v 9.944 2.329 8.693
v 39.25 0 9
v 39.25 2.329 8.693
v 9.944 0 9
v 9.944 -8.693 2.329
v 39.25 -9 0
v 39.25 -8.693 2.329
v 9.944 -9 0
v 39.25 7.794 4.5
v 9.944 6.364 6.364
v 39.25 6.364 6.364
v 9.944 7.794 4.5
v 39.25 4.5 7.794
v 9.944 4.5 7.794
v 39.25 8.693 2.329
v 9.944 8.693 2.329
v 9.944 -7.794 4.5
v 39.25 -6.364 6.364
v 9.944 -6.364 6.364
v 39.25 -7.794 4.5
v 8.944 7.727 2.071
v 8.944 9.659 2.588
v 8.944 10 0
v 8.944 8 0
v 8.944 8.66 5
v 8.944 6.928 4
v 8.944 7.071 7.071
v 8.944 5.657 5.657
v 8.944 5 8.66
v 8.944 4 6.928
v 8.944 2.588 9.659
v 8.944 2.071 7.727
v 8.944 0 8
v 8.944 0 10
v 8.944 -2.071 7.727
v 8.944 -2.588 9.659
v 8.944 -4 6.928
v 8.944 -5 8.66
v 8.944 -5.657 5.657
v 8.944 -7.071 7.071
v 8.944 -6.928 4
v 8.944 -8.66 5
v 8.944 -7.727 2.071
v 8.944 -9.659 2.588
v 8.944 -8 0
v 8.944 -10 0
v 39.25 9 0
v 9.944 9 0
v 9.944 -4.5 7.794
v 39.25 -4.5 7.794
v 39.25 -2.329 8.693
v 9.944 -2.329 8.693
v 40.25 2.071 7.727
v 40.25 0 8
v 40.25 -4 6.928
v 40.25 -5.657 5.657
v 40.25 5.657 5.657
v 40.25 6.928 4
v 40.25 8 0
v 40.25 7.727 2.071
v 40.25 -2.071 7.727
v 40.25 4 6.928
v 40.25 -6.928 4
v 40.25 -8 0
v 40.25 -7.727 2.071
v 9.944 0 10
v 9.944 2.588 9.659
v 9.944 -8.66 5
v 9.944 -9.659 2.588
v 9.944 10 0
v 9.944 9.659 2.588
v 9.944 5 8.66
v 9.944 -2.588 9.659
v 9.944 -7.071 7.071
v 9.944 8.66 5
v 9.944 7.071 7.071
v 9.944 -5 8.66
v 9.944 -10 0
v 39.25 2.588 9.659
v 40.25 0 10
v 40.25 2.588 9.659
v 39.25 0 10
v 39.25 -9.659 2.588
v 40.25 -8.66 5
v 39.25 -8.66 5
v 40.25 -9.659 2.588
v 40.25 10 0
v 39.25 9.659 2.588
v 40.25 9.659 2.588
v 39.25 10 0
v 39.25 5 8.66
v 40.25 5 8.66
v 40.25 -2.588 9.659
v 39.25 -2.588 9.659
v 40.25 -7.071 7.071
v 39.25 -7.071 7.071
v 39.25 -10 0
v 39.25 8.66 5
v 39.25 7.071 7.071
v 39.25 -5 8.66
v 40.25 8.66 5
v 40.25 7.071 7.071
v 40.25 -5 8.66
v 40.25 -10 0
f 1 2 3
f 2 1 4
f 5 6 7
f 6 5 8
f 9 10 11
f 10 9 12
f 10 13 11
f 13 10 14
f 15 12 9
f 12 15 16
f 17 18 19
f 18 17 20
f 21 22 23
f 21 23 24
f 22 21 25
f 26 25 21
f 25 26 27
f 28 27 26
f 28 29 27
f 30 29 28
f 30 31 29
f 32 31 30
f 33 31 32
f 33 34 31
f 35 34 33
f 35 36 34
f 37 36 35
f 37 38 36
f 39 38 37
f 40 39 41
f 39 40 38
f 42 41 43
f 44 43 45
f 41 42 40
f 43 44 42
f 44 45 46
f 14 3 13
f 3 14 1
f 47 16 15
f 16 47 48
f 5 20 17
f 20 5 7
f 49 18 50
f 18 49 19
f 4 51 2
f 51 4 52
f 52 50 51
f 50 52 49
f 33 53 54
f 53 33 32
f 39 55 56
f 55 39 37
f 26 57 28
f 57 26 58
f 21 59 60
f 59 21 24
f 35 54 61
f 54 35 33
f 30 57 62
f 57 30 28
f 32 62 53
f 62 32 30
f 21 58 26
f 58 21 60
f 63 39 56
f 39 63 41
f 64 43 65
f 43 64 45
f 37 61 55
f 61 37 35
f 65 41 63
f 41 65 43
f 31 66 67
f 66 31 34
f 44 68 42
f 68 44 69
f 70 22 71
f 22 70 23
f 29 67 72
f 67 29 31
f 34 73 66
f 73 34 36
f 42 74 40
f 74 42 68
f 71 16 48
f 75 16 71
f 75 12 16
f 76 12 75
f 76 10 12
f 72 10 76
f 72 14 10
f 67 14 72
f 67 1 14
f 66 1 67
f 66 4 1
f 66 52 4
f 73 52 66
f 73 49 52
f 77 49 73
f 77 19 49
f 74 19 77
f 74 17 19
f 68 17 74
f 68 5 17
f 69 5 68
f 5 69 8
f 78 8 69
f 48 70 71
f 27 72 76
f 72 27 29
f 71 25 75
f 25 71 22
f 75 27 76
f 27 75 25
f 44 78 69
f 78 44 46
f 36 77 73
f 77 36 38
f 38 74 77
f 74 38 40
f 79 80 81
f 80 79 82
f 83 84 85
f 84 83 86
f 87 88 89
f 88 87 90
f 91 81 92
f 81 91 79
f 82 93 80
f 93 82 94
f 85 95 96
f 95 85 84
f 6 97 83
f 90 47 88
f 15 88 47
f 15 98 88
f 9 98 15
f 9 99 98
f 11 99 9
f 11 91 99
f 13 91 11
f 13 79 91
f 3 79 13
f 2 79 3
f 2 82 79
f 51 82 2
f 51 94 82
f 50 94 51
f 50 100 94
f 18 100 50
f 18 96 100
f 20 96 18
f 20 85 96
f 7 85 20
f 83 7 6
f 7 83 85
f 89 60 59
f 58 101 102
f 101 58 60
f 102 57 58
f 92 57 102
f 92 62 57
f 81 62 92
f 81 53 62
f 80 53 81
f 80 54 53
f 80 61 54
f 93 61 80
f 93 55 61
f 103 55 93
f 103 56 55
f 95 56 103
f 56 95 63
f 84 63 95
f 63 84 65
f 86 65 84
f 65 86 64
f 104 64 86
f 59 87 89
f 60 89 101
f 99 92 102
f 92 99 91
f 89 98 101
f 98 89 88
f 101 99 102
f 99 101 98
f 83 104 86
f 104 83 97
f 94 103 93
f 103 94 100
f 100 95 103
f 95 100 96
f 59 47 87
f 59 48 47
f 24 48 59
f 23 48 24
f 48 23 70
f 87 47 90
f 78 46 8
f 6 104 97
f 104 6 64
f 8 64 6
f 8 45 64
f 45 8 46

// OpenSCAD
// file: ../build_environments.scad
// build_environments.scad: modules to build level sections
//

module pool(diameter=10.0, wall_height=2.0, step_width=3.0, connections=[])
{
    difference() {
        union() {
        difference() {
            cylinder(h=0.5,r1=diameter+step_width,r2=diameter+step_width,$fn=48);
            translate([0,0,-0.1])
                cylinder(h=0.7,r1=diameter,r2=diameter,$fn=48);
        }
        difference() {
            cylinder(h=wall_height,r1=diameter+step_width+1.0,r2=diameter+step_width+1.0,$fn=48);
            translate([0,0,-0.1])
                cylinder(h=wall_height+0.2,r1=diameter+step_width,r2=diameter+step_width,$fn=48);
        }
        }
    
        for (c = connections)
        {
            rotate([0,90,0]) {
                angle = atan2(c[1],c[0]);
                rotate([-angle,0,0]) {
                    cylinder(h=diameter+5.0,r1=c[2],r2=c[2],$fn=48);
                }
            }
        }
    }
}

module straight(length=10.0, width=2.0, dy1=0.0, dy2=0.0, dz=0.0)
{
    dims = [0, 0, 0, 0, 0, (dz/length)];
    matrix = [
        [ 1, dims[0], dims[1], 0 ],
        [ dims[2], 1, dims[4], 0 ],
        [ dims[5], dims[3], 1, 0 ],
        [ 0, 0, 0, 1 ]
    ];
    multmatrix(matrix)
    difference() {
        translate([dy1,0,0])
        union() {
            rotate([0,90,0]) {
                difference() {
                    cylinder(h=(length-dy1-dy2),r1=width+1.0,r2=width+1.0,$fn=24);
                    translate([0,0,-0.1])
                        cylinder(h=(length-dy1-dy2+0.2),r1=width,r2=width,$fn=24);
                }
                difference() {
                    cylinder(h=1.0,r1=width+2.0,r2=width+2.0,$fn=24);
                    translate([0,0,-0.1])
                        cylinder(h=1.2,r1=width,r2=width,$fn=24);
                }
                translate([0,0,(length-dy1-dy2)-1.0]) {
                    difference() {
                        cylinder(h=1.0,r1=width+2.0,r2=width+2.0,$fn=24);
                        translate([0,0,-0.1])
                            cylinder(h=1.2,r1=width,r2=width,$fn=24);
                    }
                }
            }
        }
        translate([0,0,-(2*width+4.0)/2])
            cube([3*length,3*length,2*width+4.0],center=true);
    }
}

module curve(p0=[0,0], center=[0,0], dir=1, angle=0.0, width=2.0)
{
    radius = sqrt((p0[0]-center[0])*(p0[0]-center[0]) + (p0[1]-center[1])*(p0[1]-center[1]));
    if (dir == 0) {
        difference() {
            rotate([0,0,-90])
            difference() {
                rotate_extrude(angle = angle, convexity = 10, $fn=32)
                    translate([radius, 0, 0])
                        circle(r = width+1.0,$fn=24);
                rotate([0,0,-1.0])
                    rotate_extrude(angle = angle+2.0, convexity = 10, $fn=32)
                        translate([radius, 0, 0])
                            circle(r = width,$fn=24);
            }
            translate([0,0,-(2*width+4.0)/2])
                cube([5*radius,5*radius,2*width+4.0],center=true);
        }
    }
    else {
        difference() {
            rotate([0,0,90])
            difference() {
                rotate_extrude(angle = -angle, convexity = 10, $fn=32)
                    translate([radius, 0, 0])
                        circle(r = width+1.0,$fn=24);
                rotate([0,0,1.0])
                    rotate_extrude(angle = -angle-2.0, convexity = 10, $fn=32)
                        translate([radius, 0, 0])
                            circle(r = width,$fn=24);
            }
            translate([0,0,-(2*width+4.0)/2])
                cube([5*radius,5*radius,2*width+4.0],center=true);
        }
    }

}

// test pool
//pool(diameter=12.0000, wall_height=3.0000, step_width=3.0000, connections=[[0.0000,-26.0000,2.0000], [23.6074,0.0000,2.0000]]);

// test straight, slope
//straight(length=26.0000, width=2.0000, dy1=11.8322, dy2=6.7082, dz=0.0000);
//straight(length=29.1549, width=12.0000, dy1=0.0000, dy2=0.0000, dz=-15.0000);

// test curve
//curve(p0=[23.6074, 0.0000], center=[23.6074, 5.0000], dir=0, angle=60.1011, width=2.0000);
//curve(p0=[33.6426, 12.4219], center=[37.9771, 9.9295], dir=1, angle=120.4627, width=2.0000);
// main file
use <../build_environments.scad>;
straight(length=40.2498, width=8.0000, dy1=8.9443, dy2=0.0000, dz=0.0000);
